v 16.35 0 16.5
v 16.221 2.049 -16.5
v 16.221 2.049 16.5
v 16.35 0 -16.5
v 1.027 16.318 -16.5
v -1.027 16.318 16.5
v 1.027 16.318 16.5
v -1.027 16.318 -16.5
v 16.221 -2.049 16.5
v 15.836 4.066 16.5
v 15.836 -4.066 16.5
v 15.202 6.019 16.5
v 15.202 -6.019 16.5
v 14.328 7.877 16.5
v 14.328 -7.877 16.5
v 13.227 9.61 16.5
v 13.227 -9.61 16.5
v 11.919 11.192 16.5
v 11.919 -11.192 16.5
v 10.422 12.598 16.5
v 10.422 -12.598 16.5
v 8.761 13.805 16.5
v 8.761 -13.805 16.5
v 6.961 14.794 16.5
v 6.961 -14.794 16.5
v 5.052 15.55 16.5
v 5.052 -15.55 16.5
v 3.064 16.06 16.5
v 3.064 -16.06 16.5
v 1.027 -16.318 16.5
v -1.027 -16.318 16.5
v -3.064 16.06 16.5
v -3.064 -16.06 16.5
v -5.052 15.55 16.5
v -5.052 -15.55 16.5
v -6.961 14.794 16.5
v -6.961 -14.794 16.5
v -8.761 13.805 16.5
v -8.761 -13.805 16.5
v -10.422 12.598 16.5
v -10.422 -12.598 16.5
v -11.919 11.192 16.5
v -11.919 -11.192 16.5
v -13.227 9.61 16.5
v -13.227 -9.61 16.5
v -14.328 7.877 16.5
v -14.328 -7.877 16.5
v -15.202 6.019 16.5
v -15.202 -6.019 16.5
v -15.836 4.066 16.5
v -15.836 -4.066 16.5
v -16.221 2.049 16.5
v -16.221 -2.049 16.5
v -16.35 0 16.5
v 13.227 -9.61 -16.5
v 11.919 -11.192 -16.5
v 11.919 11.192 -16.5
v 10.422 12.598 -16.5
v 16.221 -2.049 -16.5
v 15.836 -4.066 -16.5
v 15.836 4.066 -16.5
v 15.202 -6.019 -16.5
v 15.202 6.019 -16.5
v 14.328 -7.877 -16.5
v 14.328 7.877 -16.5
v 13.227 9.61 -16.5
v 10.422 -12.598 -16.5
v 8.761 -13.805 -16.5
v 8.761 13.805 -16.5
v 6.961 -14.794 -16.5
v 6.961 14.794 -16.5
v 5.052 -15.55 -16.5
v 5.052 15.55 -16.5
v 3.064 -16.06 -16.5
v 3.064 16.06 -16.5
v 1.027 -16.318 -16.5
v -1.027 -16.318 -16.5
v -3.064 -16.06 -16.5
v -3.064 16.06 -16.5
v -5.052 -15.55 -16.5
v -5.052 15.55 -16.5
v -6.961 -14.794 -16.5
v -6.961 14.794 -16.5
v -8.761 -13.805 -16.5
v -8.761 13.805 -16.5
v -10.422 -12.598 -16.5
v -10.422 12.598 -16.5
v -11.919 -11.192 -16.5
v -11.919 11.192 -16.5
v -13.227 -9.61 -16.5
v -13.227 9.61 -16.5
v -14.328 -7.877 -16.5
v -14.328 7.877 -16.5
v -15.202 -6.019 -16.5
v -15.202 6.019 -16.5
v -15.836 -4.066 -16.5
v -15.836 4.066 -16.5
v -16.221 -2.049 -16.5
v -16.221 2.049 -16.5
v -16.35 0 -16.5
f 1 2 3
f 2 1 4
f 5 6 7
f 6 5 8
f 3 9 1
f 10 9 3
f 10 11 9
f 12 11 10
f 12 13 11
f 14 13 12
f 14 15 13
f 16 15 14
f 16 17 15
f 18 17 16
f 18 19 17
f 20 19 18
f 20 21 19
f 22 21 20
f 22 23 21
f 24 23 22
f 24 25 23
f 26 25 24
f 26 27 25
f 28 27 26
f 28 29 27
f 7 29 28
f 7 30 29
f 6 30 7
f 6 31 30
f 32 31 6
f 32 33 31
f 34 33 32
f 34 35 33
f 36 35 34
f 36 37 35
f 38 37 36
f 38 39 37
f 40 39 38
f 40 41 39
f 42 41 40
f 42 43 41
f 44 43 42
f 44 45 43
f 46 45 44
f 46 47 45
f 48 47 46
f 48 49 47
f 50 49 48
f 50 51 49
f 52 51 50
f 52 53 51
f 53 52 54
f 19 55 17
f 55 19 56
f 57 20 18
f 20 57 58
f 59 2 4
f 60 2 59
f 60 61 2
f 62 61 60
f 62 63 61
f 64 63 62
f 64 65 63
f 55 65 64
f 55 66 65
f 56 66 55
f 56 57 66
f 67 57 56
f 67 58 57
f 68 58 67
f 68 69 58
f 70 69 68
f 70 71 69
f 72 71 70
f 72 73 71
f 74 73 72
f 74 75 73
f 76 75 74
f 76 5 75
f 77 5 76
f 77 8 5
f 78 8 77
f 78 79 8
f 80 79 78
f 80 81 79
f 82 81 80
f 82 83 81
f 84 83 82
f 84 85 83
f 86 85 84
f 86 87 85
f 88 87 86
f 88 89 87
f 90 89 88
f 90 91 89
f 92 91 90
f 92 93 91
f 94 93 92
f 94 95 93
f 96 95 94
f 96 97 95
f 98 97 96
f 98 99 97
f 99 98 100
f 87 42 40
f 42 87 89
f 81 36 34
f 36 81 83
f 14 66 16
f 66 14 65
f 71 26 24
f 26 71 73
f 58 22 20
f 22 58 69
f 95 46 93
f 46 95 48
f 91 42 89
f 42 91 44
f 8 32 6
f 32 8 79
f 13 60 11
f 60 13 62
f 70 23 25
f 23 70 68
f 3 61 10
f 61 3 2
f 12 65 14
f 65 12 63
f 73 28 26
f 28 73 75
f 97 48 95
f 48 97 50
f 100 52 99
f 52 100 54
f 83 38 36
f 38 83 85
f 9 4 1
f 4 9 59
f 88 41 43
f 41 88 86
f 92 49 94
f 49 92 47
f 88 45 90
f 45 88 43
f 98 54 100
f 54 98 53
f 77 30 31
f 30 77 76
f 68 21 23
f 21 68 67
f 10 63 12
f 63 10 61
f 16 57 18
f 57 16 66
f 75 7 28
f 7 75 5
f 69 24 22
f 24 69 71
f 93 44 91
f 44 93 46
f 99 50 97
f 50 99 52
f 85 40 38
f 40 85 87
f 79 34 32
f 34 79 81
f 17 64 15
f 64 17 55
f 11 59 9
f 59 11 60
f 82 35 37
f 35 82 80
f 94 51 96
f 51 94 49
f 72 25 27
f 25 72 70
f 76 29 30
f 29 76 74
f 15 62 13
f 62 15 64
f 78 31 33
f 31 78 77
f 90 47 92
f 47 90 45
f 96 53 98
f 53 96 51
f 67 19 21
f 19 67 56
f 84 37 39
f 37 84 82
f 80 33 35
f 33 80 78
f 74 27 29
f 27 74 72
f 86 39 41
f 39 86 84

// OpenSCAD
$fn = 50;


difference() {
	union() {
		translate(v = [0, 0, -16.5000000000]) {
			cylinder(h = 33, r = 16.3500000000);
		}
	}
	union() {
		translate(v = [0, 0, -100.0000000000]) {
			cylinder(h = 200, r = 0);
		}
	}
}
